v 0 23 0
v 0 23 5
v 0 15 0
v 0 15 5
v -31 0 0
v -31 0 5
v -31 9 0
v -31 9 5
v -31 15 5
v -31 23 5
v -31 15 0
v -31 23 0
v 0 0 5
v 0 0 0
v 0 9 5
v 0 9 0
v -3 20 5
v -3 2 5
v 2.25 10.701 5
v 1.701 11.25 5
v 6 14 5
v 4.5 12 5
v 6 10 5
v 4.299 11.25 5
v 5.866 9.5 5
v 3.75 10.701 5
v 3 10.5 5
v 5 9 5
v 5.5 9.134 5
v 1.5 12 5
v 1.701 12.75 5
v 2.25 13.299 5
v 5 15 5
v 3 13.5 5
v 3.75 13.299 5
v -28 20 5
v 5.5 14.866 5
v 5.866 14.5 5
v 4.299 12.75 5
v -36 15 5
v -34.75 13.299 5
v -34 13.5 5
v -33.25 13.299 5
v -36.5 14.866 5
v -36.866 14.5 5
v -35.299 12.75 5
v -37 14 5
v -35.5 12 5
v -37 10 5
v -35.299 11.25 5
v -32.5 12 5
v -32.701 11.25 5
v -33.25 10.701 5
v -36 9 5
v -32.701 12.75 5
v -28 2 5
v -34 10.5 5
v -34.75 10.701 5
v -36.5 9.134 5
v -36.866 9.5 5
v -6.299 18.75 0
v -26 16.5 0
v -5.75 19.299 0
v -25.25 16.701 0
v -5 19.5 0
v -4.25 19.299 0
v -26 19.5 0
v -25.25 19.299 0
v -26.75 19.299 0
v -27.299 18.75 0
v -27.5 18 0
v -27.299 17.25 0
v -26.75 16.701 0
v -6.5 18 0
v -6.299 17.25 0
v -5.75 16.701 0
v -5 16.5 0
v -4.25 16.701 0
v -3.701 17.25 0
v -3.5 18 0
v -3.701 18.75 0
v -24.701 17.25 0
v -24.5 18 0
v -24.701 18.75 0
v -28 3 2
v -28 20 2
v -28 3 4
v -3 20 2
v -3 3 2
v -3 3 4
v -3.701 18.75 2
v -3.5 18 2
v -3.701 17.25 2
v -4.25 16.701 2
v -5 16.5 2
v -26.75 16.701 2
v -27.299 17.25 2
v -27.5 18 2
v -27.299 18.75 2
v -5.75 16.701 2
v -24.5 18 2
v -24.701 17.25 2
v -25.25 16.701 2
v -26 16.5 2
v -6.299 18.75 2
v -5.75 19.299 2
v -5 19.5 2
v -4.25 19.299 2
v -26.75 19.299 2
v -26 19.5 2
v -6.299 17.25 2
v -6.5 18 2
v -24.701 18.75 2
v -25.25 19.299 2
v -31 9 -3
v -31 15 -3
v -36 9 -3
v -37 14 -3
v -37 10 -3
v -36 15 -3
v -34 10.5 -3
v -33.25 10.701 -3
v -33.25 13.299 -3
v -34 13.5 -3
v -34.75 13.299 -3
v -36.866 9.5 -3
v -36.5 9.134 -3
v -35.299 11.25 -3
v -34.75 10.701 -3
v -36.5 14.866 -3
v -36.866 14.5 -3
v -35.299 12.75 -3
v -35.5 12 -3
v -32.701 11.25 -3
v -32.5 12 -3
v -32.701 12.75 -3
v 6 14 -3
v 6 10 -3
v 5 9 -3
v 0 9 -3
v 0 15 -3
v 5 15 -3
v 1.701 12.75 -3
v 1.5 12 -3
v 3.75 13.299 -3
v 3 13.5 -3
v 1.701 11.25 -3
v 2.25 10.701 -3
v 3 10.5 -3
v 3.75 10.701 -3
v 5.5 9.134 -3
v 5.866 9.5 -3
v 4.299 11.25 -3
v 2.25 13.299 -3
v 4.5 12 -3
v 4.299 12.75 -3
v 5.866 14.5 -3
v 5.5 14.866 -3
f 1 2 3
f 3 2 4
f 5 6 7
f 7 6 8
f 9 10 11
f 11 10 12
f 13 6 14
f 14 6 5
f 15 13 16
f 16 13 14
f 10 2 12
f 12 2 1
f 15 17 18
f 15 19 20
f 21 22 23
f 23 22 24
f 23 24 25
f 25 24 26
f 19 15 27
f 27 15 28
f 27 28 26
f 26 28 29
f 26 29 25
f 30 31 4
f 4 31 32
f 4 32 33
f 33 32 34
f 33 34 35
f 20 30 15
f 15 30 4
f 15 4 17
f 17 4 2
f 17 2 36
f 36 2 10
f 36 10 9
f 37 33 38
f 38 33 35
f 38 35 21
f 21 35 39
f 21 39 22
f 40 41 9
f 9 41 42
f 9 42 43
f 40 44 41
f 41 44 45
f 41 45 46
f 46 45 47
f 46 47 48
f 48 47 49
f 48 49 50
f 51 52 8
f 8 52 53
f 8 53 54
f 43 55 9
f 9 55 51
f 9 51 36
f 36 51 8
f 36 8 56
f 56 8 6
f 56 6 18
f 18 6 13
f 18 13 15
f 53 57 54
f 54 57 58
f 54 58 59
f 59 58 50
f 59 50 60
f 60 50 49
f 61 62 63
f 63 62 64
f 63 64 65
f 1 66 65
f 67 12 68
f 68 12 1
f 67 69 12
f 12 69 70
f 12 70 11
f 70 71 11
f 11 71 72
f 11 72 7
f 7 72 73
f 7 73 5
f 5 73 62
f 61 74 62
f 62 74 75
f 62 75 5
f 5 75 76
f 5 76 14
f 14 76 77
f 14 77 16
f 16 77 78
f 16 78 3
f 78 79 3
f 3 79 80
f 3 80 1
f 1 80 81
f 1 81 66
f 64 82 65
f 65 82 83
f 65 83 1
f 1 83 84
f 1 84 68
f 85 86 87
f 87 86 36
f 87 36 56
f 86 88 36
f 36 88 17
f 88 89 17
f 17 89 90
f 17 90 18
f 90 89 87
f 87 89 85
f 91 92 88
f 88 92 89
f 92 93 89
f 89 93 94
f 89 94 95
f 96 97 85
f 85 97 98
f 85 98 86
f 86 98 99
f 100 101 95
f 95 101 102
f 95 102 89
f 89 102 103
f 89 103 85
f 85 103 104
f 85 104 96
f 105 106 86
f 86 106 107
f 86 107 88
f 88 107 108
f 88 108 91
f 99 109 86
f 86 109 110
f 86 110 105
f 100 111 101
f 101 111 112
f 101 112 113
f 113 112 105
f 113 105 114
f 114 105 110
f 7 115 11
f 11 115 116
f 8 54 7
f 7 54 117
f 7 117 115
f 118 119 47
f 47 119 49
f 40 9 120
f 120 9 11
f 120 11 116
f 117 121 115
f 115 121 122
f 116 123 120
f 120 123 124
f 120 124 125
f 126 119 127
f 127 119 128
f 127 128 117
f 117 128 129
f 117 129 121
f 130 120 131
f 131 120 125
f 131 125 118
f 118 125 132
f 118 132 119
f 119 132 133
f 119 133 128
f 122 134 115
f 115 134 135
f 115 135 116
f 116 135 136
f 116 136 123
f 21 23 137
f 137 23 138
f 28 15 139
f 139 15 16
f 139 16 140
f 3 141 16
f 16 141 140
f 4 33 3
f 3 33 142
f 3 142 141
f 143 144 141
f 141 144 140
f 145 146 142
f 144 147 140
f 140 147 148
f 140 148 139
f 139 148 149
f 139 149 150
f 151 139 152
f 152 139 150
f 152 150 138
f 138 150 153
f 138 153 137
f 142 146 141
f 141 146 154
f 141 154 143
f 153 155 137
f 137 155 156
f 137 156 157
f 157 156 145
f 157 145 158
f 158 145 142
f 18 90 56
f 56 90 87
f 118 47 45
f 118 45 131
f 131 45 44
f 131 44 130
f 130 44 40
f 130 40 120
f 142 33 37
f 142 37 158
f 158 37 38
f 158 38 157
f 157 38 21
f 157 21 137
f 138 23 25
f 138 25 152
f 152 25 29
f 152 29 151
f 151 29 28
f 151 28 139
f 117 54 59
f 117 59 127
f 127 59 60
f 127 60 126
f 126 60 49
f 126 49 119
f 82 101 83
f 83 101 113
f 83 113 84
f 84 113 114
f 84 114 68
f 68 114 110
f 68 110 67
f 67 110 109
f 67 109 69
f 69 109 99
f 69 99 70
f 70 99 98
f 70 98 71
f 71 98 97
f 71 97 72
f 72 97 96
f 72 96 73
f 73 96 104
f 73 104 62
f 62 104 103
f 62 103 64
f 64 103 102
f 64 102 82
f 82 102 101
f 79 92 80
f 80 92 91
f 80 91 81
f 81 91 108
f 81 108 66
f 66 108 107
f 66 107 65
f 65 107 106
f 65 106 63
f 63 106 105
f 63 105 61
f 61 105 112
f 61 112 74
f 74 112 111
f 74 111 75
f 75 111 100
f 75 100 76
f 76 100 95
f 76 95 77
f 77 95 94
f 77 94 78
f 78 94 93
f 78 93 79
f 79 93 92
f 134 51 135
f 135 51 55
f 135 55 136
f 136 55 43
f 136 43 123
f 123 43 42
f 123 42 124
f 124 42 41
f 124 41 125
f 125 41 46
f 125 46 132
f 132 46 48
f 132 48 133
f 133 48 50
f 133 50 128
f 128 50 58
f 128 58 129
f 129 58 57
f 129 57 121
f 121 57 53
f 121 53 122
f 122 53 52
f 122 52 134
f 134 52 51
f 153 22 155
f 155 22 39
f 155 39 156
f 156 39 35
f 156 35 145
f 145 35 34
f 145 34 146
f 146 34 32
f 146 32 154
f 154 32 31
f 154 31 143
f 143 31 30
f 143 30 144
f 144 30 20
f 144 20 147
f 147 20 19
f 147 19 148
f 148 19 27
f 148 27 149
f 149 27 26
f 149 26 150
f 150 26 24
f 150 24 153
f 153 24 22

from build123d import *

# Parameters (mm, degrees)
ESQUISSE1_W             = 31
ESQUISSE1_H             = 23
BOSS_EXTRU_1_DEPTH      = 5
ESQUISSE2_W             = 25
ESQUISSE2_H             = 17
ENL_V_MAT_EXTRU_1_DEPTH = 3
ESQUISSE4_W             = 6
ESQUISSE4_H             = 6
BOSS_EXTRU_3_DEPTH      = 8
CHANFREIN2_SIZE         = 1
CONG_2_R                = 1
ESQUISSE3_R             = 1.5
ENL_V_MAT_EXTRU_2_DEPTH = 3
ESQUISSE5_R             = 1.5
ENL_V_MAT_EXTRU_3_DEPTH = 9


with BuildPart() as part:
    # Esquisse1 → Boss.-Extru.1 (new body)
    with BuildSketch(Plane.XY):
        with Locations((-15.5, 11.5)):
            Rectangle(ESQUISSE1_W, ESQUISSE1_H)
    extrude(amount=BOSS_EXTRU_1_DEPTH)

    # Esquisse2 → Enlèv. mat.-Extru.1 (cut)
    with BuildSketch(Plane.XY.offset(5)):
        with Locations((-15.5, 11.5)):
            Rectangle(ESQUISSE2_W, ESQUISSE2_H)
    extrude(amount=-ENL_V_MAT_EXTRU_1_DEPTH, mode=Mode.SUBTRACT)

    # Esquisse4 → Boss.-Extru.3 (add)
    with BuildSketch(Plane.XY.offset(5)):
        with Locations((-34, 12)):
            Rectangle(ESQUISSE4_W, ESQUISSE4_H)
        with Locations((3, 12)):
            Rectangle(ESQUISSE4_W, ESQUISSE4_H)
    extrude(amount=-BOSS_EXTRU_3_DEPTH)

    # Chanfrein2
    chanfrein2_edges = [part.edges().sort_by_distance(p)[0] for p in [
        (-15.5, 3, 5),
    ]]
    chamfer(chanfrein2_edges, length=CHANFREIN2_SIZE)

    # Congé2
    cong_2_edges = [part.edges().sort_by_distance(p)[0] for p in [
        (-37, 15, 1),
        (6, 15, 1),
        (6, 9, 1),
        (-37, 9, 1),
    ]]
    fillet(cong_2_edges, radius=CONG_2_R)

    # Esquisse3 → Enlèv. mat.-Extru.2 (cut)
    with BuildSketch(Plane.XY.offset(2)):
        with Locations((-26, 18)):
            Circle(ESQUISSE3_R)
        with Locations((-5, 18)):
            Circle(ESQUISSE3_R)
    extrude(amount=-ENL_V_MAT_EXTRU_2_DEPTH, mode=Mode.SUBTRACT)

    # Esquisse5 → Enlèv. mat.-Extru.3 (cut, through all)
    with BuildSketch(Plane.XY.offset(5)):
        with Locations((-34, 12)):
            Circle(ESQUISSE5_R)
        with Locations((3, 12)):
            Circle(ESQUISSE5_R)
    extrude(amount=-ENL_V_MAT_EXTRU_3_DEPTH, mode=Mode.SUBTRACT)


solid = part.part
